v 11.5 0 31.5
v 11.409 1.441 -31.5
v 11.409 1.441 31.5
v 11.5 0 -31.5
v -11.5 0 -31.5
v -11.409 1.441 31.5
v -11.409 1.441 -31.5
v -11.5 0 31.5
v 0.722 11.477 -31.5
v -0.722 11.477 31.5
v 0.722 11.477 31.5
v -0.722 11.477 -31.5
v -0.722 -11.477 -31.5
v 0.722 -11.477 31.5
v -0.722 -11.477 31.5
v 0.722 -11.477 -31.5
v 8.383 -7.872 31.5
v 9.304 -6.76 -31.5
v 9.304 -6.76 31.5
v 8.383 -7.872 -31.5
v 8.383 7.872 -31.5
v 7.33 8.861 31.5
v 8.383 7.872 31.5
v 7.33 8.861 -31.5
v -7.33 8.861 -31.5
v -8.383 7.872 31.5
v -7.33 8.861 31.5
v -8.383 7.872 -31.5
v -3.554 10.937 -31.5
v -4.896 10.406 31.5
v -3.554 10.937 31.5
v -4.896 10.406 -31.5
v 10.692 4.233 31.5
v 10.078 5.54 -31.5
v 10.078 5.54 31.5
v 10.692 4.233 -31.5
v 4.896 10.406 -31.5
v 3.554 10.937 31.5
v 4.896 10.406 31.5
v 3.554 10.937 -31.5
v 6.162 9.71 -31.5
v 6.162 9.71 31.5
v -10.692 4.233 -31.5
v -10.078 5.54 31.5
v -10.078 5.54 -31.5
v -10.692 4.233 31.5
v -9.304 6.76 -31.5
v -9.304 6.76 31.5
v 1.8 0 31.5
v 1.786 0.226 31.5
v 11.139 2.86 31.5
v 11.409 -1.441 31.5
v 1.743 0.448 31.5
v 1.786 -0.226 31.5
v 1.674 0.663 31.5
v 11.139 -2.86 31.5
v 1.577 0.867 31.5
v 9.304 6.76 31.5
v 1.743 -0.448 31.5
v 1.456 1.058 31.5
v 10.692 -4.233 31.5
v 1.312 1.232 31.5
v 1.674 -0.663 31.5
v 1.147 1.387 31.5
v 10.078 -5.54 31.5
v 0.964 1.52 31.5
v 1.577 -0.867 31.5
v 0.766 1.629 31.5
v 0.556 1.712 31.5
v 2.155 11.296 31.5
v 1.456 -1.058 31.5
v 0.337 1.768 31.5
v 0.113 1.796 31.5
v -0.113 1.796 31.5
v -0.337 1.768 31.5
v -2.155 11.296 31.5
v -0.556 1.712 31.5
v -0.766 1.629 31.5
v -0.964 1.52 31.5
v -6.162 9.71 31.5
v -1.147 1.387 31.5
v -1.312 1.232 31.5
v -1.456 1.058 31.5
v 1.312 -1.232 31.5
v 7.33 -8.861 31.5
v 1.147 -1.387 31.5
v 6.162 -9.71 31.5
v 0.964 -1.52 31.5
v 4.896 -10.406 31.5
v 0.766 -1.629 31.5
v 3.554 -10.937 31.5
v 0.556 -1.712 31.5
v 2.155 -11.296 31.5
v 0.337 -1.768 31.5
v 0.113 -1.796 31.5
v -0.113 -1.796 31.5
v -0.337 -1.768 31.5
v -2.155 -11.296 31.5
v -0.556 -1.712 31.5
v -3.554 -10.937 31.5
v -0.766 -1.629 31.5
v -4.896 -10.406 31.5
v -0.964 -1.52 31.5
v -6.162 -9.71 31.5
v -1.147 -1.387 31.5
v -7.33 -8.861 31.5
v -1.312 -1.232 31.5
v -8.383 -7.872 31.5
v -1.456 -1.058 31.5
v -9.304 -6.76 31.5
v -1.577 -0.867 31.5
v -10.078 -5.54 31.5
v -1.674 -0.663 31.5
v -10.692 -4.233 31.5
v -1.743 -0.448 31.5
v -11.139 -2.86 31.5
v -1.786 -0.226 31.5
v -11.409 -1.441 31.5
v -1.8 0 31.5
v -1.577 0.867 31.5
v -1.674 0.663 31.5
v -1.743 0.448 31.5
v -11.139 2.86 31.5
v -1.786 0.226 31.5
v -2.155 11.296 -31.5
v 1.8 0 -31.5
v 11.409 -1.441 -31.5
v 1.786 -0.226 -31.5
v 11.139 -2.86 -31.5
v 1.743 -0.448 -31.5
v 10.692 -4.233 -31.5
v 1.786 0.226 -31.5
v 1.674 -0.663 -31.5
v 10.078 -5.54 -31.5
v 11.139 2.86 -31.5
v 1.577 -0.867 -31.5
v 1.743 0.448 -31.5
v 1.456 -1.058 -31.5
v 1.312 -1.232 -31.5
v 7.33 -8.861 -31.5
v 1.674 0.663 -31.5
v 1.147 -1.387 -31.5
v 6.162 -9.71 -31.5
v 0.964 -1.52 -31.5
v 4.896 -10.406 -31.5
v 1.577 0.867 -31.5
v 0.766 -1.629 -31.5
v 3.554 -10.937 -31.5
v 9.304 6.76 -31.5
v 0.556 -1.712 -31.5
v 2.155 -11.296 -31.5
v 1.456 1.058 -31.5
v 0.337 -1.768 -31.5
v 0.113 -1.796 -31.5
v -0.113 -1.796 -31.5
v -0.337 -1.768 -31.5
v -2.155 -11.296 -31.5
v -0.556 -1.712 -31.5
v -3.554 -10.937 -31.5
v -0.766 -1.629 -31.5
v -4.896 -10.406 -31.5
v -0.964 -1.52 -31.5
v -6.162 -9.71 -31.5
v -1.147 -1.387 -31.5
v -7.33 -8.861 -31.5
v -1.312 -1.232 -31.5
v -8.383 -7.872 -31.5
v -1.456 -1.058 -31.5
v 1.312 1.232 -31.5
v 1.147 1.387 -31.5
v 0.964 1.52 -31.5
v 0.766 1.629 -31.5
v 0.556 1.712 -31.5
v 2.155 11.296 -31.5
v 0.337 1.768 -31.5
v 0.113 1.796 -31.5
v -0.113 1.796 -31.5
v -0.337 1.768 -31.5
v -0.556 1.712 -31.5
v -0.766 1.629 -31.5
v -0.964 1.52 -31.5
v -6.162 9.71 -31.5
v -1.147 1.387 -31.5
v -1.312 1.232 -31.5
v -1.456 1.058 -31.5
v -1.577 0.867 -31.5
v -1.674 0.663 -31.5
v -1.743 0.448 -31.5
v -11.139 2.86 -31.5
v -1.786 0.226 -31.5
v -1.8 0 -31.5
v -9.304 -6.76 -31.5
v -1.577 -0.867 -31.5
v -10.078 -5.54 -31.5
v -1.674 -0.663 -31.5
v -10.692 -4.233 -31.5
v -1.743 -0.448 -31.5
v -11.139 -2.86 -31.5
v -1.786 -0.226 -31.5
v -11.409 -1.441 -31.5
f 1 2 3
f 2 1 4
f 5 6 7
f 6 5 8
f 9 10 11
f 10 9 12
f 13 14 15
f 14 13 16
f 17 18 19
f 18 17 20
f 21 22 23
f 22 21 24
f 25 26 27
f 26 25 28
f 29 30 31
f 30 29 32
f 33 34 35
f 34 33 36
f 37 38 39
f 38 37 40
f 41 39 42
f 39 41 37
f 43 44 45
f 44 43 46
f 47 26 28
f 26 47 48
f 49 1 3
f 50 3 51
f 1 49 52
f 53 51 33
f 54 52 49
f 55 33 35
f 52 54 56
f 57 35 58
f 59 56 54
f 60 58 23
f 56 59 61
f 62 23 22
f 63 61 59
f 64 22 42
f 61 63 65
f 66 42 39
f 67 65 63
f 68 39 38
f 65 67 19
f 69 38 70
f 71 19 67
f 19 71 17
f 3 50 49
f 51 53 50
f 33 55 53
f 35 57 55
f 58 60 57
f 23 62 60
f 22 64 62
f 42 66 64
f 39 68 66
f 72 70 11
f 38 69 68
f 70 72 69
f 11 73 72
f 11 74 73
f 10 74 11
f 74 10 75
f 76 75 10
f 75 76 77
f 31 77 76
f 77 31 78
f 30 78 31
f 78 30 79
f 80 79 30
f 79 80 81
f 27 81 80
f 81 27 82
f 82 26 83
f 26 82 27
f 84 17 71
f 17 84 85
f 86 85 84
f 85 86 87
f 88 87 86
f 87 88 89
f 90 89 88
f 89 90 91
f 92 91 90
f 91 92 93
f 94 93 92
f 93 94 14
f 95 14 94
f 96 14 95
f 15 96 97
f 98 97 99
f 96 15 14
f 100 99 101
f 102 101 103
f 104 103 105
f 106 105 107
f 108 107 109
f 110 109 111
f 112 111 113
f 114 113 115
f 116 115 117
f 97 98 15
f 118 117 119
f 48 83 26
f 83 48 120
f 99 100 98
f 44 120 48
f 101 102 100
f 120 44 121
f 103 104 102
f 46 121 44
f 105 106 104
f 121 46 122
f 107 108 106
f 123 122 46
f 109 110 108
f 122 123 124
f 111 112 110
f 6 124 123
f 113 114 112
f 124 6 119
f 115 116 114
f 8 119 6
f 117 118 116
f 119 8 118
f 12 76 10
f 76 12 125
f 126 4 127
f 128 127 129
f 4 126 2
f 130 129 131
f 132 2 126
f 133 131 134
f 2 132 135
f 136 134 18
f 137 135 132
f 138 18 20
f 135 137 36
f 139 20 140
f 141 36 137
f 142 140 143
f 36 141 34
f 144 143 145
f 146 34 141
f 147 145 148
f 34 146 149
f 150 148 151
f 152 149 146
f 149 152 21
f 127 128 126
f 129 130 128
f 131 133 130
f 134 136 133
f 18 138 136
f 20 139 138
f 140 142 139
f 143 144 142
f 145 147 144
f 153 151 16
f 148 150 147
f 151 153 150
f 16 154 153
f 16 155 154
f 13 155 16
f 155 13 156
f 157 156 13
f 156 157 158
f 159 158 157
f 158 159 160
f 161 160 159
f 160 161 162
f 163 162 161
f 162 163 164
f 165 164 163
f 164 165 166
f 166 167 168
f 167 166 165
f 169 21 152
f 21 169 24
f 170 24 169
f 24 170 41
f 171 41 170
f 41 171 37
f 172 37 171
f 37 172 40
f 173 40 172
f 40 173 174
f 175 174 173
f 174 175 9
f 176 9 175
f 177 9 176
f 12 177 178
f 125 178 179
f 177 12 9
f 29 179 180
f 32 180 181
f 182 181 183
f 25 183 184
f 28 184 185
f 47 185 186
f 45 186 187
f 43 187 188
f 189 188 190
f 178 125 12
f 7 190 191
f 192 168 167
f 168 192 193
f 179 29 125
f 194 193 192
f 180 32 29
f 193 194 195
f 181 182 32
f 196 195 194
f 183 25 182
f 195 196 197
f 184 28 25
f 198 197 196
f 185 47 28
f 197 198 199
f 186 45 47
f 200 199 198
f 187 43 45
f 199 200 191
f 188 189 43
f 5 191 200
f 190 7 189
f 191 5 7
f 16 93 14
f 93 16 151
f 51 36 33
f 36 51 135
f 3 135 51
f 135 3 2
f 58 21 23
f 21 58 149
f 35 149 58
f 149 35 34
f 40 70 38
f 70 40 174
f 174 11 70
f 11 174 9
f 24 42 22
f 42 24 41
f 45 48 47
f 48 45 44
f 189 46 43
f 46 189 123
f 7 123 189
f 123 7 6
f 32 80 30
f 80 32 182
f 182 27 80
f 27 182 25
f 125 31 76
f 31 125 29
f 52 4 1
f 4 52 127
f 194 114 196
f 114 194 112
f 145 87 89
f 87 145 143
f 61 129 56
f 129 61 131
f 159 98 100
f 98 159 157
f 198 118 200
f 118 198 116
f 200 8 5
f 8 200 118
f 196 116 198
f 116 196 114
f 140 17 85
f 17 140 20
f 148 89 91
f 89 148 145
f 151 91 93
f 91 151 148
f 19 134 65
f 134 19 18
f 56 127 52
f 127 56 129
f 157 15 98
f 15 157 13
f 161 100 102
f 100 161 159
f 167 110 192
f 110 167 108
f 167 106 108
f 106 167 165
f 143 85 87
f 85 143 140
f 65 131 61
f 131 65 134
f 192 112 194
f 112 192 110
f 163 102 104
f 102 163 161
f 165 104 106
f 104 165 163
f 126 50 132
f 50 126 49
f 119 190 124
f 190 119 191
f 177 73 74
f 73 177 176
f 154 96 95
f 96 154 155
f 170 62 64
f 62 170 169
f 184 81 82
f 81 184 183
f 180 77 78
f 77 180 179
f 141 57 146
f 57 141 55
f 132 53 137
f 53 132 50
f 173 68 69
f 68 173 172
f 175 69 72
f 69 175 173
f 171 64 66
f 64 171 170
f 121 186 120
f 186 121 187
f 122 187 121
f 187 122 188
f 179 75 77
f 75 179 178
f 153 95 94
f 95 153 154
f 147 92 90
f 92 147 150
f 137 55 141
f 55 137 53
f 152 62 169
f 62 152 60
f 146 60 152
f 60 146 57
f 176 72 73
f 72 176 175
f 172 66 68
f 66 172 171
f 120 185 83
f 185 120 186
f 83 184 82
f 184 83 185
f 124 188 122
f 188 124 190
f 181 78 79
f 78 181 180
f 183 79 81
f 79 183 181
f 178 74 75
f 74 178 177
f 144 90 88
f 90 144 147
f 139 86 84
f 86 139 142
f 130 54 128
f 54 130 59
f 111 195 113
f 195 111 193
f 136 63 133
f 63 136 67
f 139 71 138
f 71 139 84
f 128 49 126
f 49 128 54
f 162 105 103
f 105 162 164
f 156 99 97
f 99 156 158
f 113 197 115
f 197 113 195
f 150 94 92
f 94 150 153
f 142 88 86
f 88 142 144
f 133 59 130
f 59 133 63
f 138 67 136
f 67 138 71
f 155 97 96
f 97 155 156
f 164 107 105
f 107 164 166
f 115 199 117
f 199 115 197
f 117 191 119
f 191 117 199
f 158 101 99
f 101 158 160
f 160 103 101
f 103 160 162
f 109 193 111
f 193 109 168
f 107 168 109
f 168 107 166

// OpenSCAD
$fn = 50;


difference() {
	union() {
		translate(v = [0, 0, -31.5000000000]) {
			cylinder(h = 63, r = 11.5000000000);
		}
	}
	union() {
		translate(v = [0, 0, -100.0000000000]) {
			cylinder(h = 200, r = 1.8000000000);
		}
	}
}
